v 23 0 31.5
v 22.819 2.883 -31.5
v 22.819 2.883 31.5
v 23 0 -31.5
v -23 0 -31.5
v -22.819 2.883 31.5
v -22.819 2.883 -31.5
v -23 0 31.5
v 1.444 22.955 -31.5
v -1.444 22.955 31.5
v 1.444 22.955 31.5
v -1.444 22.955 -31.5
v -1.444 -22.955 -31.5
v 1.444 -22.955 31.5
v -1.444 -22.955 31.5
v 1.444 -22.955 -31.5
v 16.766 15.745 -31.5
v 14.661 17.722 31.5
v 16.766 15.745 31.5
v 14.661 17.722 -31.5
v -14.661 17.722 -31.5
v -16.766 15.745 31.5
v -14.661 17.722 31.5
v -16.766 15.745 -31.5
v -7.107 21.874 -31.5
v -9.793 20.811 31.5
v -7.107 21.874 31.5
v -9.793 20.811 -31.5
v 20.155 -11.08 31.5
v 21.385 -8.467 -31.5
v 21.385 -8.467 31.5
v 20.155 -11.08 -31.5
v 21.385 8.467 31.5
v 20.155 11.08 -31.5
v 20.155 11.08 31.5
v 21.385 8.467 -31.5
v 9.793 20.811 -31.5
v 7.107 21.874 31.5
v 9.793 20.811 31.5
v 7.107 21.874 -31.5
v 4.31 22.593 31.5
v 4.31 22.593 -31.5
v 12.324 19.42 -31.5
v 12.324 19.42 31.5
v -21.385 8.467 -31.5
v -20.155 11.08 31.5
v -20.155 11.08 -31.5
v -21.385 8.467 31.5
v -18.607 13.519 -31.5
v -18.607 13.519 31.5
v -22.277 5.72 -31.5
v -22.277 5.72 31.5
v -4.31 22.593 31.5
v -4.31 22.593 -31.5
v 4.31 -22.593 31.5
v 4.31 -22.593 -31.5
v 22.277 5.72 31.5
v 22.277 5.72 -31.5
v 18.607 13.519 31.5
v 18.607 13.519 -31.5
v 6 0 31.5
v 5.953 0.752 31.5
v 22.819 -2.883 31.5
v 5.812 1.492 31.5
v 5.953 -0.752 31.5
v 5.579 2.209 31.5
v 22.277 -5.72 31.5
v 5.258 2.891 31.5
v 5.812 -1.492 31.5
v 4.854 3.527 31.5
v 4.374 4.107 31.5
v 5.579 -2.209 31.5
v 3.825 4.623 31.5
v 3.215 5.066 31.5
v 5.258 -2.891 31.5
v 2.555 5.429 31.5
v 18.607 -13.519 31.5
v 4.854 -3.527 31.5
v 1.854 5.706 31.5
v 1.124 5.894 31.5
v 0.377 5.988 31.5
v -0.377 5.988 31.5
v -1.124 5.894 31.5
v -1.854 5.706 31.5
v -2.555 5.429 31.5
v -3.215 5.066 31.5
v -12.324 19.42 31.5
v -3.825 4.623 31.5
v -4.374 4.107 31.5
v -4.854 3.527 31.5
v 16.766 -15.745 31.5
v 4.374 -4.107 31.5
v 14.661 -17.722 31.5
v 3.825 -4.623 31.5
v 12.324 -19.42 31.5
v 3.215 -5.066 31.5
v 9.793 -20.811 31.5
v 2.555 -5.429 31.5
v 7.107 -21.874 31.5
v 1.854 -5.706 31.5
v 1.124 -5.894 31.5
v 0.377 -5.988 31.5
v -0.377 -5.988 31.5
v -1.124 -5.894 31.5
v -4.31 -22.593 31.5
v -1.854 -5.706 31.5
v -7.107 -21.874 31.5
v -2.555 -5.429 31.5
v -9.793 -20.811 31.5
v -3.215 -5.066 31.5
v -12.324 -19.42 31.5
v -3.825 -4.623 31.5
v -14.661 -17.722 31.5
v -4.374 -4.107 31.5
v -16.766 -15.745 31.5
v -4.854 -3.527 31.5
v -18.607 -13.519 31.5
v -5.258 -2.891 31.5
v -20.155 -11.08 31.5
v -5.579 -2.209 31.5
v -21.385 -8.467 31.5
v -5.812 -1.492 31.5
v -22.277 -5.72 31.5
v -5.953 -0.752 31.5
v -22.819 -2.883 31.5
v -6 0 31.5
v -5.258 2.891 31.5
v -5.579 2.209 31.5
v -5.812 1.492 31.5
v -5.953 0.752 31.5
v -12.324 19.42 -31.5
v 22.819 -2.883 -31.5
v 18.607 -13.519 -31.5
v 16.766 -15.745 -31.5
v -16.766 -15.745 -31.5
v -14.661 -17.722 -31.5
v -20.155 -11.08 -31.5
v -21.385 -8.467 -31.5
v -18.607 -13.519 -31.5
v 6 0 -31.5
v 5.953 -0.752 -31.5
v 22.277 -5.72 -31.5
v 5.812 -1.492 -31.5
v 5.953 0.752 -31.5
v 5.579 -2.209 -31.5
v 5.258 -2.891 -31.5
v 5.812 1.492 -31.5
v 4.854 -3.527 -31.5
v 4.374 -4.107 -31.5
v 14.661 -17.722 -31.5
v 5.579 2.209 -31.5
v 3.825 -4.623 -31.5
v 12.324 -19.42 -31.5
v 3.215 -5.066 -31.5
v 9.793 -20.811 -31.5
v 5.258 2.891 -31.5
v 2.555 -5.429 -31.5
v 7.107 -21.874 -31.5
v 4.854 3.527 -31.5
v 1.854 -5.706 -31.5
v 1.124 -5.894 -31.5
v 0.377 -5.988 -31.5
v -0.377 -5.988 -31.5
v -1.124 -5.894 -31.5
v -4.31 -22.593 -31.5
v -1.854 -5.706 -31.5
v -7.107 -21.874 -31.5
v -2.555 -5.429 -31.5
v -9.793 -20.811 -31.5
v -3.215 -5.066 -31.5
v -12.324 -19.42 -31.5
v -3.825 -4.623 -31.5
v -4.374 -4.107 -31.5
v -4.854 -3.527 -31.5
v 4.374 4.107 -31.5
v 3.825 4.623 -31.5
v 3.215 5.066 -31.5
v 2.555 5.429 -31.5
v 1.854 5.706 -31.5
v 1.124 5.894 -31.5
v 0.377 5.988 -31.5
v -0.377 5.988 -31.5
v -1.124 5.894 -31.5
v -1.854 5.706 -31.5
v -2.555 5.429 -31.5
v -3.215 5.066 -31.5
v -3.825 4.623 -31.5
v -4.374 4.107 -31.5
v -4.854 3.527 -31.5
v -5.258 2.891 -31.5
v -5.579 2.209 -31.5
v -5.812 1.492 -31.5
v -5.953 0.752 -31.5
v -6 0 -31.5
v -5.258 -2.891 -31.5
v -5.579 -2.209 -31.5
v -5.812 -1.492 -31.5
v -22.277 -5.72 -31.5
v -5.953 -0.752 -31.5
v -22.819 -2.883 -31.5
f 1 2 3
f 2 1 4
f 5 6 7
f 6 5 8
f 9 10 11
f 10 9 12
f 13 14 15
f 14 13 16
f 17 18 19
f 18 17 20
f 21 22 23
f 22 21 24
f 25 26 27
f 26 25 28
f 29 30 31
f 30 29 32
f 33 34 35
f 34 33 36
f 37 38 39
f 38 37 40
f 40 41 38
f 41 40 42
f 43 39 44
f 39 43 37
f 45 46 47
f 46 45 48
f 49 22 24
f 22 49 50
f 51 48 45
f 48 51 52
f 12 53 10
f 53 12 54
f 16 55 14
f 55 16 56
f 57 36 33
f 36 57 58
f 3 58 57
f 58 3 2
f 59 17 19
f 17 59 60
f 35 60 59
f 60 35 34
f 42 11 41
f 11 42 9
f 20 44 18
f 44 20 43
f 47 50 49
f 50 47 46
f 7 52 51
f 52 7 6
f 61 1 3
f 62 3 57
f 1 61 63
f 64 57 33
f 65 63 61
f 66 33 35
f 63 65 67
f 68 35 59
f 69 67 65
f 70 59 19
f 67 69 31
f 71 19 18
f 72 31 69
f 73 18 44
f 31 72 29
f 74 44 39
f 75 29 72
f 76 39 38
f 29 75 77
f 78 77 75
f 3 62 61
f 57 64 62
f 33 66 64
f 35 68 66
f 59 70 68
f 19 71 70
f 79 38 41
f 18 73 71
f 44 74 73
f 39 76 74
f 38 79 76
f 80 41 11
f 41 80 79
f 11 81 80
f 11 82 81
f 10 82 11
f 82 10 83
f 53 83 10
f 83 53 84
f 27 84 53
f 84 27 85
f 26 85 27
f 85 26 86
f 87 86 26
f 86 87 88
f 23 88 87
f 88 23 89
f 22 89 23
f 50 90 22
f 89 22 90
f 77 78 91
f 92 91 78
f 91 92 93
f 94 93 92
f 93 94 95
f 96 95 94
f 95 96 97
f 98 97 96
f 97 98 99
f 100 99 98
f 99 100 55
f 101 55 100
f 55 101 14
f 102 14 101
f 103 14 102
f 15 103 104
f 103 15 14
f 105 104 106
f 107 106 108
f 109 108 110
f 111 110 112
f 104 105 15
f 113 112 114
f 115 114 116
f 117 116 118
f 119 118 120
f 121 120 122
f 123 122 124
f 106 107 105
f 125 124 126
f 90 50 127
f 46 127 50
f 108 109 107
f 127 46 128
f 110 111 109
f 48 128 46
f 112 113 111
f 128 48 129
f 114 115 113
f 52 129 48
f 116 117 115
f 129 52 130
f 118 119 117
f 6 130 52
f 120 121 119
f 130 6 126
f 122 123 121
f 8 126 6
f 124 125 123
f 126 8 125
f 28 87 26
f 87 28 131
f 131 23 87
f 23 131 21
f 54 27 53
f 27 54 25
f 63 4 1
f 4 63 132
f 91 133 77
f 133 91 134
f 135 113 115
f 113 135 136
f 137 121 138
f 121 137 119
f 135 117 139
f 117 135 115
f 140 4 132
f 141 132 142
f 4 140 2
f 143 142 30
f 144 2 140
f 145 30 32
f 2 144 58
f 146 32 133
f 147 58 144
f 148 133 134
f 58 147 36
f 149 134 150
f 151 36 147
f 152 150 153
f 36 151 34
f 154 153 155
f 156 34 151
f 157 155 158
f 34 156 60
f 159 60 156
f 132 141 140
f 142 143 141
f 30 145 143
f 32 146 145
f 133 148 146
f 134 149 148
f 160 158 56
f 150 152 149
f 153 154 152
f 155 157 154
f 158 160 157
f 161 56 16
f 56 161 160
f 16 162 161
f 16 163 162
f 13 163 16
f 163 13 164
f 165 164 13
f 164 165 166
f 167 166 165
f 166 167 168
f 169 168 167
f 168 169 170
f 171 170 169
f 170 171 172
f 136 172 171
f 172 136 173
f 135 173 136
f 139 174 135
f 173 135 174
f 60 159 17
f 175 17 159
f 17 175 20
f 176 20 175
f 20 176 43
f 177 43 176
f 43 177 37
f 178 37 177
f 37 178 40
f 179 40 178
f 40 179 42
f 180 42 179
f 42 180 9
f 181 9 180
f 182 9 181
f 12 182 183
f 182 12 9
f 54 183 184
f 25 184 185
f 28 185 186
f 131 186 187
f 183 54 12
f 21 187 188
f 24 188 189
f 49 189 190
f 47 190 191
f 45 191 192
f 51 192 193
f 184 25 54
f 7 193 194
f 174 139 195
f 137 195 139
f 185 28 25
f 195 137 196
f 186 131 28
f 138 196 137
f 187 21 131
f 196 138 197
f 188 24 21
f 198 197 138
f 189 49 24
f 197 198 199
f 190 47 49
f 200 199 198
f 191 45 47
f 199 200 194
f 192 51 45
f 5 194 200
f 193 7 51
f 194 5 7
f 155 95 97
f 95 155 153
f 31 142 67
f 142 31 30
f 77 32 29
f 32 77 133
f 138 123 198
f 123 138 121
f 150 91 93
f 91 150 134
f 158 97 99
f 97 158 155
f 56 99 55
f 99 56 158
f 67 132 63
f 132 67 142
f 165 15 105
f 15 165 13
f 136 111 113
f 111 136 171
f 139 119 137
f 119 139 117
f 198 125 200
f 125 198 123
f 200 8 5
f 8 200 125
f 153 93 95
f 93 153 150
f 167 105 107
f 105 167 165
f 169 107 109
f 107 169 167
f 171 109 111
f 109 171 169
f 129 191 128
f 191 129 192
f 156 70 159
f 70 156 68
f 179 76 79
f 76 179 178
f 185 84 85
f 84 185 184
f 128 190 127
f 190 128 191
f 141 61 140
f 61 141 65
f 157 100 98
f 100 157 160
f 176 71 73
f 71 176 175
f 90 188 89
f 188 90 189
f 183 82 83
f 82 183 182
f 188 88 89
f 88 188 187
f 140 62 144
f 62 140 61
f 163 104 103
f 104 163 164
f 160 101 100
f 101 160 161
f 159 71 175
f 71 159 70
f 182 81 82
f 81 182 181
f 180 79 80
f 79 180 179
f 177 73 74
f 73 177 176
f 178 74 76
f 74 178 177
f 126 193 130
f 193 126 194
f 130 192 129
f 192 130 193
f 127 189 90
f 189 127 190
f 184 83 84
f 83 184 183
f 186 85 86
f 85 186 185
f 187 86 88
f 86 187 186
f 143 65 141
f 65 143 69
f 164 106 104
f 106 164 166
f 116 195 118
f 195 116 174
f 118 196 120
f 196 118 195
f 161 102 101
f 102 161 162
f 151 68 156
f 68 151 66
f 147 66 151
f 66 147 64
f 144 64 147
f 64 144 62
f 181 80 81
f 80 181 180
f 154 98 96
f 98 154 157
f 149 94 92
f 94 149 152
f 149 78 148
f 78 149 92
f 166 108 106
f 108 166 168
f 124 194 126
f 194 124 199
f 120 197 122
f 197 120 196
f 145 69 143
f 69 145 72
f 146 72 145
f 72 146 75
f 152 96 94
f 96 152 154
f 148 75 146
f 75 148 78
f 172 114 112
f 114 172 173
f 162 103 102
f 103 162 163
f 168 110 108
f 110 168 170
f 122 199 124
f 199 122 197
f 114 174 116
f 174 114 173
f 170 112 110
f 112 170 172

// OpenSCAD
$fn = 50;


difference() {
	union() {
		translate(v = [0, 0, -31.5000000000]) {
			cylinder(h = 63, r = 23.0000000000);
		}
	}
	union() {
		translate(v = [0, 0, -100.0000000000]) {
			cylinder(h = 200, r = 6);
		}
	}
}
